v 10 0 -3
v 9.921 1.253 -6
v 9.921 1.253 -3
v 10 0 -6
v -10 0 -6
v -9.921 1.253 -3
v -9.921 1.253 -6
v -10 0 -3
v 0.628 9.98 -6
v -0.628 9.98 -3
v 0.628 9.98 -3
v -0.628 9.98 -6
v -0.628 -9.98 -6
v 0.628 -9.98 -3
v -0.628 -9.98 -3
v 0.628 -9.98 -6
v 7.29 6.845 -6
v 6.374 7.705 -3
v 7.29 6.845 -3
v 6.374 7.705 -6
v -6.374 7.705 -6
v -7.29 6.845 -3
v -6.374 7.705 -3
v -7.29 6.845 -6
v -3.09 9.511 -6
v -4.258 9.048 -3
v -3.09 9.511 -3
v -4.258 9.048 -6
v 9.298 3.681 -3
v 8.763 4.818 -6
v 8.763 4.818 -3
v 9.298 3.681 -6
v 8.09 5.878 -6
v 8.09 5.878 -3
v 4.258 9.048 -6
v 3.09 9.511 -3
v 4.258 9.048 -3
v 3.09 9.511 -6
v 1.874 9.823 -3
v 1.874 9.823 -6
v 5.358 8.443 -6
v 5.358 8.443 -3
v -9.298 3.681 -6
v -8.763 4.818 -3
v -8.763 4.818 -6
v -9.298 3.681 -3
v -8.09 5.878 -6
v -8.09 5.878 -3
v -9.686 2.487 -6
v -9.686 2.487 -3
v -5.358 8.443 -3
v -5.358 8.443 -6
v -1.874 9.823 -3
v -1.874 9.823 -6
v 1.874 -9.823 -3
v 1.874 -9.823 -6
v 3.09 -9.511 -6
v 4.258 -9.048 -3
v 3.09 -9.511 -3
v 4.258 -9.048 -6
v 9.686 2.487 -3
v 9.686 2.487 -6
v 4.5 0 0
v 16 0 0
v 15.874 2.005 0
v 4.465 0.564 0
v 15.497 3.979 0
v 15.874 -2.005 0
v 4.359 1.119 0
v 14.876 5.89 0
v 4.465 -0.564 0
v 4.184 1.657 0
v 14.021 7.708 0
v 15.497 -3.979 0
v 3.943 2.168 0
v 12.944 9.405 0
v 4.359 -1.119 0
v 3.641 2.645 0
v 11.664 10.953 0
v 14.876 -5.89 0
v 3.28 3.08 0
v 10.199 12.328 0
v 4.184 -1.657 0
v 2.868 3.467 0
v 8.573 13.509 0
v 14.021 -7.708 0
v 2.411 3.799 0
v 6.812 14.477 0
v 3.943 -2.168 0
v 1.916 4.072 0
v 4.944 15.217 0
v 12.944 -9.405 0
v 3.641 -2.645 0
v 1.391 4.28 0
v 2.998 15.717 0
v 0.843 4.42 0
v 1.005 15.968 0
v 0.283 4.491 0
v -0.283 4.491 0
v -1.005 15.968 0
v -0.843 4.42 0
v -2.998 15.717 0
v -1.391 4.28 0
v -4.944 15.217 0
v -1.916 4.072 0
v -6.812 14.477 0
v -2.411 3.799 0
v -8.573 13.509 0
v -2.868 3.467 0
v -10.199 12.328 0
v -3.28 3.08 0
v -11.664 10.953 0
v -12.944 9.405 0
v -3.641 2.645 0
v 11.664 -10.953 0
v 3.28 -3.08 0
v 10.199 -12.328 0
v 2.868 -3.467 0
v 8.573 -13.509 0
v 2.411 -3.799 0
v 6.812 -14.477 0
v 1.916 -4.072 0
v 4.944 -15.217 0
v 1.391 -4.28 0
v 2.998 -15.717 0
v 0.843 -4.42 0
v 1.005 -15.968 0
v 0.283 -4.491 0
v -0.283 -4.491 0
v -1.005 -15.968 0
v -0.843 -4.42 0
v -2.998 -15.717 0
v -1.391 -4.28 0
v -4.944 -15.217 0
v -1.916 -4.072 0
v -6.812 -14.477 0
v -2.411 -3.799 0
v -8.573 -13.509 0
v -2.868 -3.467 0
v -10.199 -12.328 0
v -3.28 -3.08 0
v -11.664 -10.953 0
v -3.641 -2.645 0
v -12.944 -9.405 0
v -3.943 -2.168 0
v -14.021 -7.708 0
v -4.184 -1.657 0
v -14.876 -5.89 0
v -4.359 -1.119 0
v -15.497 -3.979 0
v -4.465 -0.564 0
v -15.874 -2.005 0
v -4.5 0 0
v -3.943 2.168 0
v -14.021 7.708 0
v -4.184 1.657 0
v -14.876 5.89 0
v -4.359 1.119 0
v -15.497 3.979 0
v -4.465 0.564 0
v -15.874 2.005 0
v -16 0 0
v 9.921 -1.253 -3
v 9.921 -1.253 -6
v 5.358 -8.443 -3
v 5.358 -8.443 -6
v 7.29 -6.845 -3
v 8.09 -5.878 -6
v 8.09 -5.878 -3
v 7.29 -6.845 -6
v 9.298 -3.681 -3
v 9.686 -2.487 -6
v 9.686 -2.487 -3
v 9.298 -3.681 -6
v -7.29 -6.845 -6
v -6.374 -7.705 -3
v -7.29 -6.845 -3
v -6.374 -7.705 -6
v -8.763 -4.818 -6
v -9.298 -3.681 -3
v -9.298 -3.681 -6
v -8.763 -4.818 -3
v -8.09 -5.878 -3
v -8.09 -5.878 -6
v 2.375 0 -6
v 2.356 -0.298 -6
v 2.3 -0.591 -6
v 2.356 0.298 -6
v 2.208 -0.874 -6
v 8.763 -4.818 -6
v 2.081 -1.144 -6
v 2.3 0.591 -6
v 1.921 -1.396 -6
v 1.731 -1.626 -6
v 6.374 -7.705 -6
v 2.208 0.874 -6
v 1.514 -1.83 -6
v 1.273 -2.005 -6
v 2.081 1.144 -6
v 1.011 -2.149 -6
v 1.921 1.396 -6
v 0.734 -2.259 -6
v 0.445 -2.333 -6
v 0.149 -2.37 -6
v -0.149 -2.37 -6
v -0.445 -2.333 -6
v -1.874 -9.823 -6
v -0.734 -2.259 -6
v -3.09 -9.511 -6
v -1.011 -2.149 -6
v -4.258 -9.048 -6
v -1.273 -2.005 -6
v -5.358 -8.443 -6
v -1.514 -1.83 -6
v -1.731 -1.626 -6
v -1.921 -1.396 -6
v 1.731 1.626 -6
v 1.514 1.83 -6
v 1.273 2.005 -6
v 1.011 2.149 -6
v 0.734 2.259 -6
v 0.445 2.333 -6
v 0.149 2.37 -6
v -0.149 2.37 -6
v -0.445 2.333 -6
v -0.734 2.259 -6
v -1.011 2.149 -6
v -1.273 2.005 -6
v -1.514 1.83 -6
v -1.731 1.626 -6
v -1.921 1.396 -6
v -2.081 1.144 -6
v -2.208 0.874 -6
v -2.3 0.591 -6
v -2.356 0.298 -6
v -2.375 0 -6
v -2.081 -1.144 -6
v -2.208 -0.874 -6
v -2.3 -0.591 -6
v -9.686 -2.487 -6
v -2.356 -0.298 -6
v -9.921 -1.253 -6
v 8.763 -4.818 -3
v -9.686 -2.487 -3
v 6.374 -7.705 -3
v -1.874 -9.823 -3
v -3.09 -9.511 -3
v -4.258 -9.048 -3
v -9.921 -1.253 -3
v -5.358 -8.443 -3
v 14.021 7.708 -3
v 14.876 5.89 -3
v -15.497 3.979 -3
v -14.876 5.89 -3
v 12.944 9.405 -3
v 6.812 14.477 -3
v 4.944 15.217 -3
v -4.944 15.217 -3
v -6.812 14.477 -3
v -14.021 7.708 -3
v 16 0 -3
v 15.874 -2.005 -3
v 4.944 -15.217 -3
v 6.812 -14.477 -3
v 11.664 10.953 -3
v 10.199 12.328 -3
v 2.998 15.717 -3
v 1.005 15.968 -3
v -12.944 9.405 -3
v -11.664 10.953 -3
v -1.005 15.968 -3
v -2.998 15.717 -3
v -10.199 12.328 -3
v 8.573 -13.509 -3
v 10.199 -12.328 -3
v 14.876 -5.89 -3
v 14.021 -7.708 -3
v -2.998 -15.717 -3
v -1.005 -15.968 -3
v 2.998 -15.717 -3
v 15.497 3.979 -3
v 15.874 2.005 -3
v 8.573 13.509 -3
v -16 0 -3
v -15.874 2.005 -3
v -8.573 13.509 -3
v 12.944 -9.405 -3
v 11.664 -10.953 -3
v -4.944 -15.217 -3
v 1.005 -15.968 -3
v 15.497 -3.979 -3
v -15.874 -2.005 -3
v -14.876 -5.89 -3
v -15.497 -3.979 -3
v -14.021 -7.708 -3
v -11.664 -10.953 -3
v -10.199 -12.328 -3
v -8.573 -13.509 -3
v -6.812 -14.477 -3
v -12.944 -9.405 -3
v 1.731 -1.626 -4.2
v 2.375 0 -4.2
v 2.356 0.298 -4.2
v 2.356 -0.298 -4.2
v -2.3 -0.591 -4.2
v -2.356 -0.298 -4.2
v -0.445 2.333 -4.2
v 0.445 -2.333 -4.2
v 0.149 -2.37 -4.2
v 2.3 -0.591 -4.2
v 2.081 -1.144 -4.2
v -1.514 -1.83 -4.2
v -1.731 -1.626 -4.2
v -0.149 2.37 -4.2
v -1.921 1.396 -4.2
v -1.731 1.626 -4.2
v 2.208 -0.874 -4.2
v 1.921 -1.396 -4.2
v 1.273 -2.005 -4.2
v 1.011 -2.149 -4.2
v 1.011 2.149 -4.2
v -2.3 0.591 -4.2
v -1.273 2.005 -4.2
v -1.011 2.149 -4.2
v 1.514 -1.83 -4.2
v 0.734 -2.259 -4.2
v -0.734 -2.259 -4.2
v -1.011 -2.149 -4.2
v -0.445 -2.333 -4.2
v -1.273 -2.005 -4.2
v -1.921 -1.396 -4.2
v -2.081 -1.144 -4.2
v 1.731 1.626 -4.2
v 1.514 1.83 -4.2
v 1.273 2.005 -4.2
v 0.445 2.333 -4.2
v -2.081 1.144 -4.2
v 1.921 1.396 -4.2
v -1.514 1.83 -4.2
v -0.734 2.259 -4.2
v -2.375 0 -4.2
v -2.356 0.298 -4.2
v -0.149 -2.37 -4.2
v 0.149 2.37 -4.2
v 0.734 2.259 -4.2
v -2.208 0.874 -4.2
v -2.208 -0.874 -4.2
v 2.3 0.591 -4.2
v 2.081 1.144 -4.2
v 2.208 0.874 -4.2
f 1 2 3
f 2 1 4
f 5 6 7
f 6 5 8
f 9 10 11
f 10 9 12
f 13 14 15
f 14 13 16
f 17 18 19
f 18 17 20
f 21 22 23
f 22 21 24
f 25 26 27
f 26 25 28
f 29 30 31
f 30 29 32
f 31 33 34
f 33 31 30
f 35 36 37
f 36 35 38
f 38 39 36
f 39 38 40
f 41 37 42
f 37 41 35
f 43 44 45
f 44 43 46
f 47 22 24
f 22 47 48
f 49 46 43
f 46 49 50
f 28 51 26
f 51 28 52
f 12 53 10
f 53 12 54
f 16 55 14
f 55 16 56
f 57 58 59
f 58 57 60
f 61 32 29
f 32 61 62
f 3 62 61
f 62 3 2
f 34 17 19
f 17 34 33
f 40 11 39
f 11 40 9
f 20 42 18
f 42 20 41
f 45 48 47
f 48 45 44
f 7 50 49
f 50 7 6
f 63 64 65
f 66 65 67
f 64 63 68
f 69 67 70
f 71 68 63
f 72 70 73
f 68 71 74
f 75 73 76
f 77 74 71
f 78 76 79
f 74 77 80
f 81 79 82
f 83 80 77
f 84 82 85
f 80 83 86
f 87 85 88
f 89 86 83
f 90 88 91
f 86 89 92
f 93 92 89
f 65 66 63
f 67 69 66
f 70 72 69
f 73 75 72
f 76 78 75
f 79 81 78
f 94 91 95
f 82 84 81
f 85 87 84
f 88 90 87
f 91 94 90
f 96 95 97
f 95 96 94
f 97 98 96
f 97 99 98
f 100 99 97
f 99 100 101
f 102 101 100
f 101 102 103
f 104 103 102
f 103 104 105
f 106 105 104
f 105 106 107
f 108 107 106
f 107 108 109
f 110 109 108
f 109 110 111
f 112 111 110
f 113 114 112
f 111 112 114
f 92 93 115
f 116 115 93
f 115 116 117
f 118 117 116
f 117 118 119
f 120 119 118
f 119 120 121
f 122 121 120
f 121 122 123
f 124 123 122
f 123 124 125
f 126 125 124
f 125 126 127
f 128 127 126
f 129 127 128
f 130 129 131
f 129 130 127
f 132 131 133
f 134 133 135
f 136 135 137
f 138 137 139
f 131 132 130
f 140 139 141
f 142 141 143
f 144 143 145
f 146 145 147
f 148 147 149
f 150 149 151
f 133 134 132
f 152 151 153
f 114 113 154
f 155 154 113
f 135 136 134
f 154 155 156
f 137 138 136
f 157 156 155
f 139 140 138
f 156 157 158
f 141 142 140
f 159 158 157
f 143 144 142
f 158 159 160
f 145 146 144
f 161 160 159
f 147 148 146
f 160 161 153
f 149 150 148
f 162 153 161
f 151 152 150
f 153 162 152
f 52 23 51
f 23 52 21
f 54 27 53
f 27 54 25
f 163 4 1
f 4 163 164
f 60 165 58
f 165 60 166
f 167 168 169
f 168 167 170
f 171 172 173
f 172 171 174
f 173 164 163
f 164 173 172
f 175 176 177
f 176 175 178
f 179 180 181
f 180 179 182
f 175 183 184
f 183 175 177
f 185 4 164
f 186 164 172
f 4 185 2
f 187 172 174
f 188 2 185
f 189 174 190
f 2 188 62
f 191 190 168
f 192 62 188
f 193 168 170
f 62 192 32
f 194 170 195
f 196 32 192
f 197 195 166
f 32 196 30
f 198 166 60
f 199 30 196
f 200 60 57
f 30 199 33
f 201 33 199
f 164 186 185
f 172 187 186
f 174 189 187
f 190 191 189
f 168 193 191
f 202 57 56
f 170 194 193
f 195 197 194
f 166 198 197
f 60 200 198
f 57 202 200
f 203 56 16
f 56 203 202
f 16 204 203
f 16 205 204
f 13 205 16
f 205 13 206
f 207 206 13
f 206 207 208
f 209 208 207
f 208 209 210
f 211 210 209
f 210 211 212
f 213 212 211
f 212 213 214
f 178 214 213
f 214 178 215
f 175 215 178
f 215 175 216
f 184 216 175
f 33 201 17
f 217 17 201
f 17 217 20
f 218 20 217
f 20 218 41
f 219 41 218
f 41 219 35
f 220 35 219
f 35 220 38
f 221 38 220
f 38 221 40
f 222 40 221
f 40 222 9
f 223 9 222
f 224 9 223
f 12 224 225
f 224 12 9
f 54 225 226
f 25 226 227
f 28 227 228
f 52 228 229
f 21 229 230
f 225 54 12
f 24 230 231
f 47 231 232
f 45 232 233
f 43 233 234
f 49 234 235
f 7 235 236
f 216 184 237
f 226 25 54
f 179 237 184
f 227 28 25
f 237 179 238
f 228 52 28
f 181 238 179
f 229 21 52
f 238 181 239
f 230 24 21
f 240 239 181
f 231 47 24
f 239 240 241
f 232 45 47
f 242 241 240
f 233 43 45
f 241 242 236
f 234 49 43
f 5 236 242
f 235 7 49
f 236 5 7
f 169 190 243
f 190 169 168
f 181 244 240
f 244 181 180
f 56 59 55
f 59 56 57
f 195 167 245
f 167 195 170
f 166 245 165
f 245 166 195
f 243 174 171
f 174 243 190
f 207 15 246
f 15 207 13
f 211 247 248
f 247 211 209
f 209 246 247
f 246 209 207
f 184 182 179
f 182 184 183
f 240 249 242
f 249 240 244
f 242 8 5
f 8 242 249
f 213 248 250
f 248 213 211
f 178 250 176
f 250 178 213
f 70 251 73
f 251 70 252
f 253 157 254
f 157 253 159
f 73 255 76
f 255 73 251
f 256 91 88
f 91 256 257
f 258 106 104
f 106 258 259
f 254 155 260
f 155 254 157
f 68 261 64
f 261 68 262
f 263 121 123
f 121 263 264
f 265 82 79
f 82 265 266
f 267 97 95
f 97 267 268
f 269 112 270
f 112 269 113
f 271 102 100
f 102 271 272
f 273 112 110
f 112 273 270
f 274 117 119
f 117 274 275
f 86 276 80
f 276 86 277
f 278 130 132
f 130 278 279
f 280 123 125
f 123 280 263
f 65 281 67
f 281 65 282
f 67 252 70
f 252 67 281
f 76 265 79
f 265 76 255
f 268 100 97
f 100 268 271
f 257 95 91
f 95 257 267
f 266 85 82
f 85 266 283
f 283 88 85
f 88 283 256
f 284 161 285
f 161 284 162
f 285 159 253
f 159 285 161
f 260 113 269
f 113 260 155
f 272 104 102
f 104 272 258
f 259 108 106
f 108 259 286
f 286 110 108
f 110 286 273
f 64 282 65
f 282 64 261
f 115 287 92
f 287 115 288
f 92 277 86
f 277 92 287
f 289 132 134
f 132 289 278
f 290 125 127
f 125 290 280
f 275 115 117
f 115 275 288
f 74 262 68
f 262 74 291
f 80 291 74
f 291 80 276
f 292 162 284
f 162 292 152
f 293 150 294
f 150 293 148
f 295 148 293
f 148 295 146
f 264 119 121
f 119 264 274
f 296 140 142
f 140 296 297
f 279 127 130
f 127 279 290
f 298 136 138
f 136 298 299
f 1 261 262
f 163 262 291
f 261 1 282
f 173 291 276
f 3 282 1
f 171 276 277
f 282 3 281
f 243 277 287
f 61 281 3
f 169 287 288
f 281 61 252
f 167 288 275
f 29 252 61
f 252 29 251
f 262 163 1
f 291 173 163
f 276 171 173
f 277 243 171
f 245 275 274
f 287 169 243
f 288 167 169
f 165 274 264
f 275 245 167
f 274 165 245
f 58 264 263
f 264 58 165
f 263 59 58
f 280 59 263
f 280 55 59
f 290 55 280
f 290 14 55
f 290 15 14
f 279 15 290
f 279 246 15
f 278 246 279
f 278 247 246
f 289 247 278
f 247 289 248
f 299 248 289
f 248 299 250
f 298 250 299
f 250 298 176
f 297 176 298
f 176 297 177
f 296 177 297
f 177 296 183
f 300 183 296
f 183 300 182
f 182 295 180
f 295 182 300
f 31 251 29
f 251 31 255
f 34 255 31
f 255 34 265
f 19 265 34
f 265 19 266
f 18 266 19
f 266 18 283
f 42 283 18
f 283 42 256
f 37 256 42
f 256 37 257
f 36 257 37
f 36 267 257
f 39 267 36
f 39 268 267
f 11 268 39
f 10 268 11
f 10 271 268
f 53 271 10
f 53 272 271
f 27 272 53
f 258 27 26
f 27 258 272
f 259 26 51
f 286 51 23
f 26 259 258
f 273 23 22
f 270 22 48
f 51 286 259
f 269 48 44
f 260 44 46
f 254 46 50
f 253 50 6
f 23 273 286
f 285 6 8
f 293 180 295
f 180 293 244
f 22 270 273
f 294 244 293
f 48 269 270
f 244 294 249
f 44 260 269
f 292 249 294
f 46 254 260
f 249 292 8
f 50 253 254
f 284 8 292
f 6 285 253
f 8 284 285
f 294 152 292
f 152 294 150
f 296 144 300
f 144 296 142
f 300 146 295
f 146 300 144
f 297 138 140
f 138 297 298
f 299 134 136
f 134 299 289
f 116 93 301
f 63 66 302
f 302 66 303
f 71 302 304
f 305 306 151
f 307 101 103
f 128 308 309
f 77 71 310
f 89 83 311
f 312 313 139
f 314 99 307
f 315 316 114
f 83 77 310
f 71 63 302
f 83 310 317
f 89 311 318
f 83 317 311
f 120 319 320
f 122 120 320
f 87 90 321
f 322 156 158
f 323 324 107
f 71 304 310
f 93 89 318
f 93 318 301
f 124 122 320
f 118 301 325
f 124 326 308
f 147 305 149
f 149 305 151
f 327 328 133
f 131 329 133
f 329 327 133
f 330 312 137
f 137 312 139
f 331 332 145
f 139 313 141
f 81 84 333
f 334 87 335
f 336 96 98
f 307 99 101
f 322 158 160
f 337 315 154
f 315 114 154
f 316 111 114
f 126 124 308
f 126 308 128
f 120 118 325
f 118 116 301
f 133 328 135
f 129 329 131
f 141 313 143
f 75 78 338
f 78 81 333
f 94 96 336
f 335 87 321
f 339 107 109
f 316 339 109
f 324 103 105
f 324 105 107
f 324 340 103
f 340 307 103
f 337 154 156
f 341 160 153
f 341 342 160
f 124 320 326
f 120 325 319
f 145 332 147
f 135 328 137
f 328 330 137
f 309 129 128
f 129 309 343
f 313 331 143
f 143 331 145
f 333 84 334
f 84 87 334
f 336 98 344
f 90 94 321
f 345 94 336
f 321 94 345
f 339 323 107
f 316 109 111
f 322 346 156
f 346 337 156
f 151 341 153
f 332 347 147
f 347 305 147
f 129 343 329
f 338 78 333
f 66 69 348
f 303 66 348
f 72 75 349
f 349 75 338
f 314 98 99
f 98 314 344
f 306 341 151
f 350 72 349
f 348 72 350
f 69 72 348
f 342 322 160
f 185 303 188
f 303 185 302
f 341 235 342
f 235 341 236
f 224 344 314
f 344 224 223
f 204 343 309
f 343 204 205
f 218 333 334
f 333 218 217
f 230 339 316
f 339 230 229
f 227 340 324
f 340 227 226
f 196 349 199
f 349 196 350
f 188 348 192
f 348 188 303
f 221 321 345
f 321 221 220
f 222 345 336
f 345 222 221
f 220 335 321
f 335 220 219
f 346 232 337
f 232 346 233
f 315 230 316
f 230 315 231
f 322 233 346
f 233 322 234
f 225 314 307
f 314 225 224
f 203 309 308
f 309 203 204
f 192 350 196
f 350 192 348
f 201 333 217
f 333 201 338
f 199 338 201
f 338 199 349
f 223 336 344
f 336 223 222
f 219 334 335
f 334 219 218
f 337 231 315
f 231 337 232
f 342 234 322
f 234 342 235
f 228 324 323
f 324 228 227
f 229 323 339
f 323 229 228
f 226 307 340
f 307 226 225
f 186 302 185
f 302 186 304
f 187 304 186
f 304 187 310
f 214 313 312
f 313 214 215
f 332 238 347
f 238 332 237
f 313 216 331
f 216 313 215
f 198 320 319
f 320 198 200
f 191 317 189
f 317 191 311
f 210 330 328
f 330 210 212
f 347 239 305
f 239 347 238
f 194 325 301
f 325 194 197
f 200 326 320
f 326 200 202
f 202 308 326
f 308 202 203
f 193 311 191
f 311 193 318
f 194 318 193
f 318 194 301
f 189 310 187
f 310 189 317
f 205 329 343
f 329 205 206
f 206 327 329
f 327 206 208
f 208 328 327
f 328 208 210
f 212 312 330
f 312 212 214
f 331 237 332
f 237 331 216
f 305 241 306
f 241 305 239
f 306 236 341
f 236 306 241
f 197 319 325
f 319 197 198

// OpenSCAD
$fn = 50;


difference() {
	union() {
		translate(v = [0, 0, -6.0000000000]) {
			cylinder(h = 6, r = 10.0000000000);
		}
		translate(v = [0, 0, -3.0000000000]) {
			cylinder(h = 3, r = 16.0000000000);
		}
	}
	union() {
		translate(v = [0, 0, 0]) {
			rotate(a = [0, 0, 0]) {
				difference() {
					union() {
						#translate(v = [0, 0, -6.0000000000]) {
							cylinder(h = 6, r = 2.2500000000);
						}
						#translate(v = [0, 0, -4.2000000000]) {
							cylinder(h = 4.2000000000, r = 10.0000000000, r1 = 2.3750000000, r2 = 4.5000000000);
						}
						#translate(v = [0, 0, -6.0000000000]) {
							cylinder(h = 6, r = 2.3750000000);
						}
						#translate(v = [0, 0, -6.0000000000]) {
							cylinder(h = 6, r = 2.2500000000);
						}
					}
					union();
				}
			}
		}
	}
}
